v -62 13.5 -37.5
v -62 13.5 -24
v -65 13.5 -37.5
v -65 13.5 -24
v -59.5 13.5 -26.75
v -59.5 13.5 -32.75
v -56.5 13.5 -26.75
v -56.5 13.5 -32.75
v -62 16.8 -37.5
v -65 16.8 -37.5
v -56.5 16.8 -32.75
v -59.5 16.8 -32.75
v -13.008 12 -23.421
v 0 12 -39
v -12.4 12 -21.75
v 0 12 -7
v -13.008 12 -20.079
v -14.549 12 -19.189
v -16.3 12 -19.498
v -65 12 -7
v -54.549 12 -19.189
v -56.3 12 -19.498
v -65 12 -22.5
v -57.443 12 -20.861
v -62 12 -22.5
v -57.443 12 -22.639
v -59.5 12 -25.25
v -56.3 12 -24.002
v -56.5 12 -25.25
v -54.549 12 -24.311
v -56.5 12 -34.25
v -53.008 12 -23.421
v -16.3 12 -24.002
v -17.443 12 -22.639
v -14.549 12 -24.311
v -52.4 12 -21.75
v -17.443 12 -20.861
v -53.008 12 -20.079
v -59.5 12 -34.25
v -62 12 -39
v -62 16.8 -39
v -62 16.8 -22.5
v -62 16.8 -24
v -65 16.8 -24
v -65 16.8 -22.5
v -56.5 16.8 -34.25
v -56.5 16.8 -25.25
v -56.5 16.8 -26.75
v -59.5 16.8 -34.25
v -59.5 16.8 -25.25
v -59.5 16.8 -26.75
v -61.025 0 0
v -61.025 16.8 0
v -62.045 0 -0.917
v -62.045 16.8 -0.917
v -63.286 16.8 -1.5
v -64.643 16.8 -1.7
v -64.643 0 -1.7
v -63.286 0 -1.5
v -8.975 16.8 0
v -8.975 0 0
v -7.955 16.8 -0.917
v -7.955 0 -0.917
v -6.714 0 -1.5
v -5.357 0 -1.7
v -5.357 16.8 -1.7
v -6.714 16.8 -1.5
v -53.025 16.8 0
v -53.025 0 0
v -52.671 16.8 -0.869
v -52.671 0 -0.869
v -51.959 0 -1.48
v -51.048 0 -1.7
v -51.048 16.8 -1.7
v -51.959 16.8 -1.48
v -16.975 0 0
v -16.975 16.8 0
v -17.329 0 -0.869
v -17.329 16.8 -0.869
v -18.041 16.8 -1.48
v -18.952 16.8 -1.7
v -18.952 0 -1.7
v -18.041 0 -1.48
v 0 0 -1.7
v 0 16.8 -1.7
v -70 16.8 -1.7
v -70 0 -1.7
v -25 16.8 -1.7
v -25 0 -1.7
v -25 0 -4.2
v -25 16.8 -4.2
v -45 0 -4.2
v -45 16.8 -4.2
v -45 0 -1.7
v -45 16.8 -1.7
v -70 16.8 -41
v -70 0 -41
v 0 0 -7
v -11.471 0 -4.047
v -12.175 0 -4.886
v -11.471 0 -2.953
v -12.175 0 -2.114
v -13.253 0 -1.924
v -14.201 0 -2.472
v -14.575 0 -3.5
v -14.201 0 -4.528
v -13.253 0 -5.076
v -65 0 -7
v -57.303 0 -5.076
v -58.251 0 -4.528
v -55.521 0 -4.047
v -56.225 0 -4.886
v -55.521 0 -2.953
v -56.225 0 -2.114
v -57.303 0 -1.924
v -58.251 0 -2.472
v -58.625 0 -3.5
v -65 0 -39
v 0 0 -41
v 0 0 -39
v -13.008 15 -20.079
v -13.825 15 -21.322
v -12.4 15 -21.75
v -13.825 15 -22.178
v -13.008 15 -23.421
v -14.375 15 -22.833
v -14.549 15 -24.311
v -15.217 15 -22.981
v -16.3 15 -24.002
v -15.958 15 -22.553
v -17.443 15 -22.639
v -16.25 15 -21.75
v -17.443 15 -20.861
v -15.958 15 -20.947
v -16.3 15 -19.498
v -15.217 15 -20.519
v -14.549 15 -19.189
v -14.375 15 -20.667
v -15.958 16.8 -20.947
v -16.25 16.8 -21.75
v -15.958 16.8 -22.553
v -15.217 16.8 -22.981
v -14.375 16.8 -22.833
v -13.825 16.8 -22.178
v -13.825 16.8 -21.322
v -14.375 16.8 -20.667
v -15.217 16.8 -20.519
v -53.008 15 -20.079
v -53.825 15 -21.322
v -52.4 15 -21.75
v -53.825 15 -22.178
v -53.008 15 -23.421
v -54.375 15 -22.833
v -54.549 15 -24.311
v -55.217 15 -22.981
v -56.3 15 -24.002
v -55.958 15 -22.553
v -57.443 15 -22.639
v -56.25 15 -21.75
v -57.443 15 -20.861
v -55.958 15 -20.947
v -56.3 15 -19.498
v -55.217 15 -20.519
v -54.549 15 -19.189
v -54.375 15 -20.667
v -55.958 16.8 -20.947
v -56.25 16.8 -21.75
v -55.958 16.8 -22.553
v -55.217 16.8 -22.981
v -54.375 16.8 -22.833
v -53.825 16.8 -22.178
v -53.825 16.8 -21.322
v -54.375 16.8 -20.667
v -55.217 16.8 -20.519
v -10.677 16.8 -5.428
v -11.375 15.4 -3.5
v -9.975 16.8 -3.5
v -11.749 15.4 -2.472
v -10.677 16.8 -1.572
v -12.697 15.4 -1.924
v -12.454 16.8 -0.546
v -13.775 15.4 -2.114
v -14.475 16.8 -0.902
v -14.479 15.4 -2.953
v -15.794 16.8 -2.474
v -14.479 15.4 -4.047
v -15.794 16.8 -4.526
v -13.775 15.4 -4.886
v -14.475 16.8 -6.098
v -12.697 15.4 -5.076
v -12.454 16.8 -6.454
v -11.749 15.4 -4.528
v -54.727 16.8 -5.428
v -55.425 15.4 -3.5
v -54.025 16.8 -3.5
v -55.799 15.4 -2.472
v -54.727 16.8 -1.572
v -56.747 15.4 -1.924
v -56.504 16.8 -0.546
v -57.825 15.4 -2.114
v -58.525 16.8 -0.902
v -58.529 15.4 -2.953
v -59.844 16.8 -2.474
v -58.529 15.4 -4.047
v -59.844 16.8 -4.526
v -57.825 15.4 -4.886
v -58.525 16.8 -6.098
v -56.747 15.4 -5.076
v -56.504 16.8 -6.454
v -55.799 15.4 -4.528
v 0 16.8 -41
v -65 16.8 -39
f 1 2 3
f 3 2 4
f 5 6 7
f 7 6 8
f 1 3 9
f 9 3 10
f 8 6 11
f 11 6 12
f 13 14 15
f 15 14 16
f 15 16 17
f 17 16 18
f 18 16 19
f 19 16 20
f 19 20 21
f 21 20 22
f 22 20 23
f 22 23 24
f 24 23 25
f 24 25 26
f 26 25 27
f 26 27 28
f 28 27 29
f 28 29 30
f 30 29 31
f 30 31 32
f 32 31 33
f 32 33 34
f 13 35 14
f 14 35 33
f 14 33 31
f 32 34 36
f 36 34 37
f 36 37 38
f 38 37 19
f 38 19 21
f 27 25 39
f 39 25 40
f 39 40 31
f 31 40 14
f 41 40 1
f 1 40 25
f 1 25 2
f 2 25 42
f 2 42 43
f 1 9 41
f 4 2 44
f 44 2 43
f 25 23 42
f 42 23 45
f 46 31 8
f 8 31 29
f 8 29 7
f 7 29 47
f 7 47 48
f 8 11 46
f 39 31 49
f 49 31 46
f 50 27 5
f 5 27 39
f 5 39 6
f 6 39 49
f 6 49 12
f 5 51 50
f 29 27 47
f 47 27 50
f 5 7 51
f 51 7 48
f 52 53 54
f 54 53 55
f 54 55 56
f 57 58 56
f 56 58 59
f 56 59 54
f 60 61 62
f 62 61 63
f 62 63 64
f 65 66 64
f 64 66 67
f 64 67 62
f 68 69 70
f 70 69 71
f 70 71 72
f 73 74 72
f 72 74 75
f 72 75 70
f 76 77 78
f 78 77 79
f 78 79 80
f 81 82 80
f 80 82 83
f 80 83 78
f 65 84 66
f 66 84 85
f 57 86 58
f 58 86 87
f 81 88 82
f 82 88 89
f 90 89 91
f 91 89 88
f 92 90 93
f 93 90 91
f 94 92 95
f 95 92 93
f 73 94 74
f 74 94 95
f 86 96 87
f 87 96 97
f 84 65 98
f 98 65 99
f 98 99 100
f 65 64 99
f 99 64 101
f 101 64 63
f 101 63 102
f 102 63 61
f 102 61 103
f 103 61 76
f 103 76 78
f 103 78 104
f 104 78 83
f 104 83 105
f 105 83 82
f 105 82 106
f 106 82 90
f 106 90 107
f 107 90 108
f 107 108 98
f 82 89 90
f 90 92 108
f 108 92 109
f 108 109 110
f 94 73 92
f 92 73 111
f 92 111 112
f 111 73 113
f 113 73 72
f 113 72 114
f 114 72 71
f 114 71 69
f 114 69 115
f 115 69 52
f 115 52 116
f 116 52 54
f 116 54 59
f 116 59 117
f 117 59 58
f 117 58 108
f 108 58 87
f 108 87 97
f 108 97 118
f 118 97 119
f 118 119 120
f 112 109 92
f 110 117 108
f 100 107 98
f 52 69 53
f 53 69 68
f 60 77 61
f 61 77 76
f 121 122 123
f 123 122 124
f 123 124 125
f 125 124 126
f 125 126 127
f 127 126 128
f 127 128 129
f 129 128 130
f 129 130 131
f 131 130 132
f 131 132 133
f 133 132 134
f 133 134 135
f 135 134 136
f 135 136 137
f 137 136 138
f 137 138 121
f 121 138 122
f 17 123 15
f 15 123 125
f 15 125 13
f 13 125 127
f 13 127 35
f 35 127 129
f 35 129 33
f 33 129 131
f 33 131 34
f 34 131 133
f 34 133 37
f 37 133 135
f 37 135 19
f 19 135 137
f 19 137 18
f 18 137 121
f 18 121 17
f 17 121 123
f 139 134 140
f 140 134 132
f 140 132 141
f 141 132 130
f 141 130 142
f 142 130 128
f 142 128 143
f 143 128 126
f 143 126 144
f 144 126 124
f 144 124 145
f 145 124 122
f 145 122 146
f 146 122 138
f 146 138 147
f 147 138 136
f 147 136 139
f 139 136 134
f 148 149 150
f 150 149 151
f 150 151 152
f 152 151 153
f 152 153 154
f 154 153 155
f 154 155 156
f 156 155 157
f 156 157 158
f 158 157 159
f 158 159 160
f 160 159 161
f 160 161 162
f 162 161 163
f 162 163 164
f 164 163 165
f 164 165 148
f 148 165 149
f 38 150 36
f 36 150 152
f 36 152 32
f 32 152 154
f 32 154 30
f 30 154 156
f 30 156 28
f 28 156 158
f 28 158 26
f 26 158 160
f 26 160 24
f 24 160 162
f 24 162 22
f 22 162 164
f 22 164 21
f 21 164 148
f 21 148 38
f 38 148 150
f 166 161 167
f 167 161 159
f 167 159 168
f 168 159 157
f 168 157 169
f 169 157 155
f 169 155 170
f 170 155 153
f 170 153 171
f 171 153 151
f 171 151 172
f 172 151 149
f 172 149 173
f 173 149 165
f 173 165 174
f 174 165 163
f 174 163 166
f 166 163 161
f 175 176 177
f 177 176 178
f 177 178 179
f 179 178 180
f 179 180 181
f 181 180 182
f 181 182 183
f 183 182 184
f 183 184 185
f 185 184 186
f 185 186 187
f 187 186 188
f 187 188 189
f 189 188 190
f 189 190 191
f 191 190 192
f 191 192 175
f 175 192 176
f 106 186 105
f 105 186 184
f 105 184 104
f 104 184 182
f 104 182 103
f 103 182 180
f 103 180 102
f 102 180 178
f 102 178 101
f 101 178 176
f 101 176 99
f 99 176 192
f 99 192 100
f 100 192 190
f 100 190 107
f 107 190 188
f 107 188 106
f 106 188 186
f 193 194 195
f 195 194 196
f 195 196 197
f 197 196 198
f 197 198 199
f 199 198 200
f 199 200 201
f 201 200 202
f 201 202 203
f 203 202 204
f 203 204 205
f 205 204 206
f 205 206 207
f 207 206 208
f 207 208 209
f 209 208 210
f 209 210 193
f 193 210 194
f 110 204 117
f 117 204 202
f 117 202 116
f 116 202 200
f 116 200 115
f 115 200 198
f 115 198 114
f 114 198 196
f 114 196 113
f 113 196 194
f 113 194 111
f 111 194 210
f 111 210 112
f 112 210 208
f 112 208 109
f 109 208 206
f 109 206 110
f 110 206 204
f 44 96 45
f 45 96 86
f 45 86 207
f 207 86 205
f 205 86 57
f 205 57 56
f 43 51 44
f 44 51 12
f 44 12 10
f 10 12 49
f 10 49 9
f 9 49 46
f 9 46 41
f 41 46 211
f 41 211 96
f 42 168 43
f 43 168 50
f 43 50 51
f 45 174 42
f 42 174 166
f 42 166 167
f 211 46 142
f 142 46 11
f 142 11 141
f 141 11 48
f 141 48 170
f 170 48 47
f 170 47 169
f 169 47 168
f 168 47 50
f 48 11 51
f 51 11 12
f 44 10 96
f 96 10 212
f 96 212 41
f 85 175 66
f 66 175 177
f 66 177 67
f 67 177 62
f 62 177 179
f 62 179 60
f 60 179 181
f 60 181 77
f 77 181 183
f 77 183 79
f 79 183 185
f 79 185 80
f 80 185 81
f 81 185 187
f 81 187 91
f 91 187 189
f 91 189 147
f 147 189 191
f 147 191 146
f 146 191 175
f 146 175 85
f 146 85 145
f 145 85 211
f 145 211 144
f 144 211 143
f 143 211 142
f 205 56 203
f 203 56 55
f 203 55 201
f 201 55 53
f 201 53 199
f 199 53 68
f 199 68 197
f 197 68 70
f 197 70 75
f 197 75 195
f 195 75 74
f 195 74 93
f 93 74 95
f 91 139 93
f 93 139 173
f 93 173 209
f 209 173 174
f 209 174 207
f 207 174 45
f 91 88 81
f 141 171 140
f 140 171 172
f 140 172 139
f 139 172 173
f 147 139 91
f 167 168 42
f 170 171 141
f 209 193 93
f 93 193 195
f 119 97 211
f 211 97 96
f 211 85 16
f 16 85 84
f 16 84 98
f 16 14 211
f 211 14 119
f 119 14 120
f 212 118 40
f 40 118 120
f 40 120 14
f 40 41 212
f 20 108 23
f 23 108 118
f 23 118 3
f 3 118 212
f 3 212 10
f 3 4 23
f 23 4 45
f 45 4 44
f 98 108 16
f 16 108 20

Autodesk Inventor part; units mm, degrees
ref_plane "YZ Plane" through (0, 0, 0) normal (1, 0, 0) x (0, 1, 0)
ref_plane "XZ Plane" through (0, 0, 0) normal (0, 1, 0) x (-1, 0, 0)
ref_plane "XY Plane" through (0, 0, 0) normal (0, 0, 1) x (1, 0, 0)
sketch "Эскиз1" plane through (0, 0, 0) normal (0, 1, 0) x (-1, 0, 0)
  line L0 (0, 0) -> (70, 0)
  line L1 (70, 0) -> (70, -41)
  line L2 (70, -41) -> (0, -41)
  line L3 (0, -41) -> (0, 0)
  line L4 (65, -7) -> (0, -7)
  line L5 (0, -7) -> (0, -39)
  line L6 (0, -39) -> (65, -39)
  line L7 (65, -39) -> (65, -7)
  line L8 (65, -7) -> (0, -39) construction
  line L9 (0, -7) -> (65, -39) construction
  line L10 (0, -7) -> (2, -7)
  point P0 (0, -7)
  dimension "d0" = 70
  dimension "d224" = 7
  dimension "d225" = 5
  dimension "d226" = 32
  dimension "d302" = 2
extrude "Выдавливание1" add sketch "Эскиз1" along normal blind 12 contours L0 L1 L2 L3 L6 L7 L4
sketch "Эскиз40" plane through (0, 12, 0) normal (0, 1, 0) x (1, 0, 0)
  line L0 (0, 41) -> (-70, 41) projected
  line L1 (0, 0) -> (-70, 0)
  line L2 (-70, 0) -> (-70, 41)
  line L3 (-70, 41) -> (0, 41)
  line L4 (0, 41) -> (0, 0)
  point P0 (0, 41)
extrude "Выдавливание32" add sketch "Эскиз40" along normal blind 4.8
sketch "Эскиз39" plane through (0, 16.8, 0) normal (0, 1, 0) x (1, 0, 0)
  line L0 (-70, 41) -> (-70, 0) projected
  line L1 (0, 41) -> (-70, 41) projected
  line L2 (0, 39) -> (0, 41) projected
  line L3 (-65, 39) -> (0, 39) projected
  line L4 (-65, 7) -> (-65, 39) projected
  line L5 (0, 7) -> (-65, 7) projected
  line L6 (0, 0) -> (0, 7) projected
  line L7 (-70, 0) -> (0, 0) projected
  line L8 (-70, 0) -> (0, 0) construction
  line L9 (-35, 0) -> (-35, 7) construction
  line L10 (-57.025, 3.5) -> (-12.975, 3.5) construction
  point P0 (-35, 3.5)
  dimension "d356" = 44.05
hole "Отверстие6" at (-12.975, 16.8, -3.5) at (-57.025, 16.8, -3.5) direction (0, -1, 0) diameter 3.2 end through all countersink diameter 6 countersink angle 90
sketch "Эскиз49" plane through (0, 12, 0) normal (0, 1, 0) x (1, 0, 0)
  line L0 (-70, 0) -> (0, 0) construction
  line L1 (-35, 0) -> (-35, 21.75) construction
  line L2 (-55, 21.75) -> (-15, 21.75) construction
  dimension "d369" = 21.75
  dimension "d370" = 40
hole "Отверстие8" at (-15, 12, -21.75) at (-55, 12, -21.75) direction (0, 1, 0) diameter 2.5 end through all counterbore diameter 5.2 counterbore depth 3
sketch "Эскиз48" plane through (0, 16.8, 0) normal (0, 1, 0) x (1, 0, 0)
  line L0 (-53.025, 0) -> (-16.975, 0)
  line L1 (-16.975, 0) -> (-16.975, 4.2)
  line L2 (-16.975, 4.2) -> (-53.025, 4.2)
  line L3 (-53.025, 4.2) -> (-53.025, 0)
  line L4 (-70, 0) -> (0, 0) projected
  line L5 (-70, 41) -> (-70, 0) projected
  line L6 (-70, 0) -> (-61.025, 0)
  line L7 (-61.025, 0) -> (-61.025, 1.7)
  line L8 (-61.025, 1.7) -> (-70, 1.7)
  line L9 (-70, 1.7) -> (-70, 0)
  line L10 (0, 0) -> (-8.975, 0)
  line L11 (-8.975, 0) -> (-8.975, 1.7)
  line L12 (-8.975, 1.7) -> (0, 1.7)
  line L13 (0, 1.7) -> (0, 0)
  line L14 (-61.025, 0) -> (-53.025, 0)
  line L15 (-53.025, 0) -> (-53.025, 7)
  line L16 (-53.025, 7) -> (-61.025, 7)
  line L17 (-61.025, 7) -> (-61.025, 0)
  circle A0 centre (-57.025, 3.5) radius 1.6 projected
  line L18 (-61.025, 0) -> (-53.025, 7) construction
  line L19 (-53.025, 0) -> (-61.025, 7) construction
  line L20 (-8.975, 0) -> (-16.975, 0)
  line L21 (-16.975, 0) -> (-16.975, 7)
  line L22 (-16.975, 7) -> (-8.975, 7)
  line L23 (-8.975, 7) -> (-8.975, 0)
  circle A1 centre (-12.975, 3.5) radius 3 projected
  line L24 (-8.975, 0) -> (-16.975, 7) construction
  line L25 (-16.975, 0) -> (-8.975, 7) construction
  line L26 (-53.025, 0) -> (-45, 0)
  line L27 (-45, 0) -> (-45, 1.7)
  line L28 (-45, 1.7) -> (-53.025, 1.7)
  line L29 (-53.025, 1.7) -> (-53.025, 0)
  line L30 (-16.975, 0) -> (-25, 0)
  line L31 (-25, 0) -> (-25, 1.7)
  line L32 (-25, 1.7) -> (-16.975, 1.7)
  line L33 (-16.975, 1.7) -> (-16.975, 0)
  line L34 (-45, 1.7) -> (-45, 4.2)
  line L35 (-25, 1.7) -> (-25, 4.2)
  point P0 (-35, 0)
  point P1 (-8.975, 0)
  point P2 (-53.025, 1.7)
  point P3 (-16.975, 1.7)
  dimension "d359" = 4.2
  dimension "d363" = 8
  dimension "d364" = 8
  dimension "d365" = 1.7
  dimension "d366" = 8.025
extrude "Выдавливание38" cut sketch "Эскиз48" against normal through all contours L3 L28 L27 L0 | L27 L34 L2 L35 L31 L0 | L4 L5 L8 L7 | L31 L32 L1 L0 | L11 L12 L13 L4
fillet "Сопряжение2" radius 2 2 edges at (-16.975, 8.4, -1.7) (-53.025, 8.4, -1.7)
fillet "Сопряжение2" radius 4.7 2 edges at (-8.975, 8.4, -1.7) (-61.025, 8.4, -1.7)
sketch "Эскиз50" plane through (0, 16.8, 0) normal (0, 1, 0) x (1, 0, 0)
  line L0 (-62, 22.5) -> (-62, 24)
  line L1 (-62, 24) -> (-65, 24)
  line L2 (-65, 24) -> (-65, 22.5)
  line L3 (-65, 22.5) -> (-62, 22.5)
  line L4 (-62, 37.5) -> (-62, 39)
  line L5 (-62, 39) -> (-65, 39)
  line L6 (-65, 39) -> (-65, 37.5)
  line L7 (-65, 37.5) -> (-62, 37.5)
  line L8 (-70, 41) -> (-70, 1.7) projected
  line L9 (0, 41) -> (-70, 41) projected
  line L10 (-63.5, 24) -> (-63.5, 37.5) construction
  line L11 (-63.5, 30.75) -> (-58, 30.75) construction
  line L12 (-58, 30.75) -> (-58, 26.75) construction
  line L13 (-59.5, 25.25) -> (-56.5, 25.25)
  line L14 (-56.5, 25.25) -> (-56.5, 26.75)
  line L15 (-56.5, 26.75) -> (-59.5, 26.75)
  line L16 (-59.5, 26.75) -> (-59.5, 25.25)
  line L17 (-59.5, 32.75) -> (-56.5, 32.75)
  line L18 (-56.5, 32.75) -> (-56.5, 34.25)
  line L19 (-56.5, 34.25) -> (-59.5, 34.25)
  line L20 (-59.5, 34.25) -> (-59.5, 32.75)
  point P0 (0, 0)
  dimension "d378" = 13.5
  dimension "d379" = 1.5
  dimension "d380" = 3
  dimension "d385" = 5
  dimension "d386" = 2
  dimension "d389" = 6
  dimension "d390" = 4
  dimension "d391" = 5.5
extrude "Выдавливание39" cut sketch "Эскиз50" against normal through all
sketch "Эскиз51" plane through (0, 12, 0) normal (0, -1, 0) x (1, 0, 0)
  line L0 (-62, -24) -> (-65, -24) projected
  line L1 (-65, -37.5) -> (-62, -37.5) projected
  line L2 (-62, -24) -> (-65, -24)
  line L3 (-65, -24) -> (-65, -37.5)
  line L4 (-65, -37.5) -> (-62, -37.5)
  line L5 (-62, -37.5) -> (-62, -24)
  line L6 (-56.5, -26.75) -> (-59.5, -26.75) projected
  line L7 (-59.5, -32.75) -> (-56.5, -32.75) projected
  line L8 (-59.5, -26.75) -> (-56.5, -26.75)
  line L9 (-56.5, -26.75) -> (-56.5, -32.75)
  line L10 (-56.5, -32.75) -> (-59.5, -32.75)
  line L11 (-59.5, -32.75) -> (-59.5, -26.75)
  point P0 (0, 0)
extrude "Выдавливание40" cut sketch "Эскиз51" against normal blind 1.5
properties part number "Стойка под электроннику"
